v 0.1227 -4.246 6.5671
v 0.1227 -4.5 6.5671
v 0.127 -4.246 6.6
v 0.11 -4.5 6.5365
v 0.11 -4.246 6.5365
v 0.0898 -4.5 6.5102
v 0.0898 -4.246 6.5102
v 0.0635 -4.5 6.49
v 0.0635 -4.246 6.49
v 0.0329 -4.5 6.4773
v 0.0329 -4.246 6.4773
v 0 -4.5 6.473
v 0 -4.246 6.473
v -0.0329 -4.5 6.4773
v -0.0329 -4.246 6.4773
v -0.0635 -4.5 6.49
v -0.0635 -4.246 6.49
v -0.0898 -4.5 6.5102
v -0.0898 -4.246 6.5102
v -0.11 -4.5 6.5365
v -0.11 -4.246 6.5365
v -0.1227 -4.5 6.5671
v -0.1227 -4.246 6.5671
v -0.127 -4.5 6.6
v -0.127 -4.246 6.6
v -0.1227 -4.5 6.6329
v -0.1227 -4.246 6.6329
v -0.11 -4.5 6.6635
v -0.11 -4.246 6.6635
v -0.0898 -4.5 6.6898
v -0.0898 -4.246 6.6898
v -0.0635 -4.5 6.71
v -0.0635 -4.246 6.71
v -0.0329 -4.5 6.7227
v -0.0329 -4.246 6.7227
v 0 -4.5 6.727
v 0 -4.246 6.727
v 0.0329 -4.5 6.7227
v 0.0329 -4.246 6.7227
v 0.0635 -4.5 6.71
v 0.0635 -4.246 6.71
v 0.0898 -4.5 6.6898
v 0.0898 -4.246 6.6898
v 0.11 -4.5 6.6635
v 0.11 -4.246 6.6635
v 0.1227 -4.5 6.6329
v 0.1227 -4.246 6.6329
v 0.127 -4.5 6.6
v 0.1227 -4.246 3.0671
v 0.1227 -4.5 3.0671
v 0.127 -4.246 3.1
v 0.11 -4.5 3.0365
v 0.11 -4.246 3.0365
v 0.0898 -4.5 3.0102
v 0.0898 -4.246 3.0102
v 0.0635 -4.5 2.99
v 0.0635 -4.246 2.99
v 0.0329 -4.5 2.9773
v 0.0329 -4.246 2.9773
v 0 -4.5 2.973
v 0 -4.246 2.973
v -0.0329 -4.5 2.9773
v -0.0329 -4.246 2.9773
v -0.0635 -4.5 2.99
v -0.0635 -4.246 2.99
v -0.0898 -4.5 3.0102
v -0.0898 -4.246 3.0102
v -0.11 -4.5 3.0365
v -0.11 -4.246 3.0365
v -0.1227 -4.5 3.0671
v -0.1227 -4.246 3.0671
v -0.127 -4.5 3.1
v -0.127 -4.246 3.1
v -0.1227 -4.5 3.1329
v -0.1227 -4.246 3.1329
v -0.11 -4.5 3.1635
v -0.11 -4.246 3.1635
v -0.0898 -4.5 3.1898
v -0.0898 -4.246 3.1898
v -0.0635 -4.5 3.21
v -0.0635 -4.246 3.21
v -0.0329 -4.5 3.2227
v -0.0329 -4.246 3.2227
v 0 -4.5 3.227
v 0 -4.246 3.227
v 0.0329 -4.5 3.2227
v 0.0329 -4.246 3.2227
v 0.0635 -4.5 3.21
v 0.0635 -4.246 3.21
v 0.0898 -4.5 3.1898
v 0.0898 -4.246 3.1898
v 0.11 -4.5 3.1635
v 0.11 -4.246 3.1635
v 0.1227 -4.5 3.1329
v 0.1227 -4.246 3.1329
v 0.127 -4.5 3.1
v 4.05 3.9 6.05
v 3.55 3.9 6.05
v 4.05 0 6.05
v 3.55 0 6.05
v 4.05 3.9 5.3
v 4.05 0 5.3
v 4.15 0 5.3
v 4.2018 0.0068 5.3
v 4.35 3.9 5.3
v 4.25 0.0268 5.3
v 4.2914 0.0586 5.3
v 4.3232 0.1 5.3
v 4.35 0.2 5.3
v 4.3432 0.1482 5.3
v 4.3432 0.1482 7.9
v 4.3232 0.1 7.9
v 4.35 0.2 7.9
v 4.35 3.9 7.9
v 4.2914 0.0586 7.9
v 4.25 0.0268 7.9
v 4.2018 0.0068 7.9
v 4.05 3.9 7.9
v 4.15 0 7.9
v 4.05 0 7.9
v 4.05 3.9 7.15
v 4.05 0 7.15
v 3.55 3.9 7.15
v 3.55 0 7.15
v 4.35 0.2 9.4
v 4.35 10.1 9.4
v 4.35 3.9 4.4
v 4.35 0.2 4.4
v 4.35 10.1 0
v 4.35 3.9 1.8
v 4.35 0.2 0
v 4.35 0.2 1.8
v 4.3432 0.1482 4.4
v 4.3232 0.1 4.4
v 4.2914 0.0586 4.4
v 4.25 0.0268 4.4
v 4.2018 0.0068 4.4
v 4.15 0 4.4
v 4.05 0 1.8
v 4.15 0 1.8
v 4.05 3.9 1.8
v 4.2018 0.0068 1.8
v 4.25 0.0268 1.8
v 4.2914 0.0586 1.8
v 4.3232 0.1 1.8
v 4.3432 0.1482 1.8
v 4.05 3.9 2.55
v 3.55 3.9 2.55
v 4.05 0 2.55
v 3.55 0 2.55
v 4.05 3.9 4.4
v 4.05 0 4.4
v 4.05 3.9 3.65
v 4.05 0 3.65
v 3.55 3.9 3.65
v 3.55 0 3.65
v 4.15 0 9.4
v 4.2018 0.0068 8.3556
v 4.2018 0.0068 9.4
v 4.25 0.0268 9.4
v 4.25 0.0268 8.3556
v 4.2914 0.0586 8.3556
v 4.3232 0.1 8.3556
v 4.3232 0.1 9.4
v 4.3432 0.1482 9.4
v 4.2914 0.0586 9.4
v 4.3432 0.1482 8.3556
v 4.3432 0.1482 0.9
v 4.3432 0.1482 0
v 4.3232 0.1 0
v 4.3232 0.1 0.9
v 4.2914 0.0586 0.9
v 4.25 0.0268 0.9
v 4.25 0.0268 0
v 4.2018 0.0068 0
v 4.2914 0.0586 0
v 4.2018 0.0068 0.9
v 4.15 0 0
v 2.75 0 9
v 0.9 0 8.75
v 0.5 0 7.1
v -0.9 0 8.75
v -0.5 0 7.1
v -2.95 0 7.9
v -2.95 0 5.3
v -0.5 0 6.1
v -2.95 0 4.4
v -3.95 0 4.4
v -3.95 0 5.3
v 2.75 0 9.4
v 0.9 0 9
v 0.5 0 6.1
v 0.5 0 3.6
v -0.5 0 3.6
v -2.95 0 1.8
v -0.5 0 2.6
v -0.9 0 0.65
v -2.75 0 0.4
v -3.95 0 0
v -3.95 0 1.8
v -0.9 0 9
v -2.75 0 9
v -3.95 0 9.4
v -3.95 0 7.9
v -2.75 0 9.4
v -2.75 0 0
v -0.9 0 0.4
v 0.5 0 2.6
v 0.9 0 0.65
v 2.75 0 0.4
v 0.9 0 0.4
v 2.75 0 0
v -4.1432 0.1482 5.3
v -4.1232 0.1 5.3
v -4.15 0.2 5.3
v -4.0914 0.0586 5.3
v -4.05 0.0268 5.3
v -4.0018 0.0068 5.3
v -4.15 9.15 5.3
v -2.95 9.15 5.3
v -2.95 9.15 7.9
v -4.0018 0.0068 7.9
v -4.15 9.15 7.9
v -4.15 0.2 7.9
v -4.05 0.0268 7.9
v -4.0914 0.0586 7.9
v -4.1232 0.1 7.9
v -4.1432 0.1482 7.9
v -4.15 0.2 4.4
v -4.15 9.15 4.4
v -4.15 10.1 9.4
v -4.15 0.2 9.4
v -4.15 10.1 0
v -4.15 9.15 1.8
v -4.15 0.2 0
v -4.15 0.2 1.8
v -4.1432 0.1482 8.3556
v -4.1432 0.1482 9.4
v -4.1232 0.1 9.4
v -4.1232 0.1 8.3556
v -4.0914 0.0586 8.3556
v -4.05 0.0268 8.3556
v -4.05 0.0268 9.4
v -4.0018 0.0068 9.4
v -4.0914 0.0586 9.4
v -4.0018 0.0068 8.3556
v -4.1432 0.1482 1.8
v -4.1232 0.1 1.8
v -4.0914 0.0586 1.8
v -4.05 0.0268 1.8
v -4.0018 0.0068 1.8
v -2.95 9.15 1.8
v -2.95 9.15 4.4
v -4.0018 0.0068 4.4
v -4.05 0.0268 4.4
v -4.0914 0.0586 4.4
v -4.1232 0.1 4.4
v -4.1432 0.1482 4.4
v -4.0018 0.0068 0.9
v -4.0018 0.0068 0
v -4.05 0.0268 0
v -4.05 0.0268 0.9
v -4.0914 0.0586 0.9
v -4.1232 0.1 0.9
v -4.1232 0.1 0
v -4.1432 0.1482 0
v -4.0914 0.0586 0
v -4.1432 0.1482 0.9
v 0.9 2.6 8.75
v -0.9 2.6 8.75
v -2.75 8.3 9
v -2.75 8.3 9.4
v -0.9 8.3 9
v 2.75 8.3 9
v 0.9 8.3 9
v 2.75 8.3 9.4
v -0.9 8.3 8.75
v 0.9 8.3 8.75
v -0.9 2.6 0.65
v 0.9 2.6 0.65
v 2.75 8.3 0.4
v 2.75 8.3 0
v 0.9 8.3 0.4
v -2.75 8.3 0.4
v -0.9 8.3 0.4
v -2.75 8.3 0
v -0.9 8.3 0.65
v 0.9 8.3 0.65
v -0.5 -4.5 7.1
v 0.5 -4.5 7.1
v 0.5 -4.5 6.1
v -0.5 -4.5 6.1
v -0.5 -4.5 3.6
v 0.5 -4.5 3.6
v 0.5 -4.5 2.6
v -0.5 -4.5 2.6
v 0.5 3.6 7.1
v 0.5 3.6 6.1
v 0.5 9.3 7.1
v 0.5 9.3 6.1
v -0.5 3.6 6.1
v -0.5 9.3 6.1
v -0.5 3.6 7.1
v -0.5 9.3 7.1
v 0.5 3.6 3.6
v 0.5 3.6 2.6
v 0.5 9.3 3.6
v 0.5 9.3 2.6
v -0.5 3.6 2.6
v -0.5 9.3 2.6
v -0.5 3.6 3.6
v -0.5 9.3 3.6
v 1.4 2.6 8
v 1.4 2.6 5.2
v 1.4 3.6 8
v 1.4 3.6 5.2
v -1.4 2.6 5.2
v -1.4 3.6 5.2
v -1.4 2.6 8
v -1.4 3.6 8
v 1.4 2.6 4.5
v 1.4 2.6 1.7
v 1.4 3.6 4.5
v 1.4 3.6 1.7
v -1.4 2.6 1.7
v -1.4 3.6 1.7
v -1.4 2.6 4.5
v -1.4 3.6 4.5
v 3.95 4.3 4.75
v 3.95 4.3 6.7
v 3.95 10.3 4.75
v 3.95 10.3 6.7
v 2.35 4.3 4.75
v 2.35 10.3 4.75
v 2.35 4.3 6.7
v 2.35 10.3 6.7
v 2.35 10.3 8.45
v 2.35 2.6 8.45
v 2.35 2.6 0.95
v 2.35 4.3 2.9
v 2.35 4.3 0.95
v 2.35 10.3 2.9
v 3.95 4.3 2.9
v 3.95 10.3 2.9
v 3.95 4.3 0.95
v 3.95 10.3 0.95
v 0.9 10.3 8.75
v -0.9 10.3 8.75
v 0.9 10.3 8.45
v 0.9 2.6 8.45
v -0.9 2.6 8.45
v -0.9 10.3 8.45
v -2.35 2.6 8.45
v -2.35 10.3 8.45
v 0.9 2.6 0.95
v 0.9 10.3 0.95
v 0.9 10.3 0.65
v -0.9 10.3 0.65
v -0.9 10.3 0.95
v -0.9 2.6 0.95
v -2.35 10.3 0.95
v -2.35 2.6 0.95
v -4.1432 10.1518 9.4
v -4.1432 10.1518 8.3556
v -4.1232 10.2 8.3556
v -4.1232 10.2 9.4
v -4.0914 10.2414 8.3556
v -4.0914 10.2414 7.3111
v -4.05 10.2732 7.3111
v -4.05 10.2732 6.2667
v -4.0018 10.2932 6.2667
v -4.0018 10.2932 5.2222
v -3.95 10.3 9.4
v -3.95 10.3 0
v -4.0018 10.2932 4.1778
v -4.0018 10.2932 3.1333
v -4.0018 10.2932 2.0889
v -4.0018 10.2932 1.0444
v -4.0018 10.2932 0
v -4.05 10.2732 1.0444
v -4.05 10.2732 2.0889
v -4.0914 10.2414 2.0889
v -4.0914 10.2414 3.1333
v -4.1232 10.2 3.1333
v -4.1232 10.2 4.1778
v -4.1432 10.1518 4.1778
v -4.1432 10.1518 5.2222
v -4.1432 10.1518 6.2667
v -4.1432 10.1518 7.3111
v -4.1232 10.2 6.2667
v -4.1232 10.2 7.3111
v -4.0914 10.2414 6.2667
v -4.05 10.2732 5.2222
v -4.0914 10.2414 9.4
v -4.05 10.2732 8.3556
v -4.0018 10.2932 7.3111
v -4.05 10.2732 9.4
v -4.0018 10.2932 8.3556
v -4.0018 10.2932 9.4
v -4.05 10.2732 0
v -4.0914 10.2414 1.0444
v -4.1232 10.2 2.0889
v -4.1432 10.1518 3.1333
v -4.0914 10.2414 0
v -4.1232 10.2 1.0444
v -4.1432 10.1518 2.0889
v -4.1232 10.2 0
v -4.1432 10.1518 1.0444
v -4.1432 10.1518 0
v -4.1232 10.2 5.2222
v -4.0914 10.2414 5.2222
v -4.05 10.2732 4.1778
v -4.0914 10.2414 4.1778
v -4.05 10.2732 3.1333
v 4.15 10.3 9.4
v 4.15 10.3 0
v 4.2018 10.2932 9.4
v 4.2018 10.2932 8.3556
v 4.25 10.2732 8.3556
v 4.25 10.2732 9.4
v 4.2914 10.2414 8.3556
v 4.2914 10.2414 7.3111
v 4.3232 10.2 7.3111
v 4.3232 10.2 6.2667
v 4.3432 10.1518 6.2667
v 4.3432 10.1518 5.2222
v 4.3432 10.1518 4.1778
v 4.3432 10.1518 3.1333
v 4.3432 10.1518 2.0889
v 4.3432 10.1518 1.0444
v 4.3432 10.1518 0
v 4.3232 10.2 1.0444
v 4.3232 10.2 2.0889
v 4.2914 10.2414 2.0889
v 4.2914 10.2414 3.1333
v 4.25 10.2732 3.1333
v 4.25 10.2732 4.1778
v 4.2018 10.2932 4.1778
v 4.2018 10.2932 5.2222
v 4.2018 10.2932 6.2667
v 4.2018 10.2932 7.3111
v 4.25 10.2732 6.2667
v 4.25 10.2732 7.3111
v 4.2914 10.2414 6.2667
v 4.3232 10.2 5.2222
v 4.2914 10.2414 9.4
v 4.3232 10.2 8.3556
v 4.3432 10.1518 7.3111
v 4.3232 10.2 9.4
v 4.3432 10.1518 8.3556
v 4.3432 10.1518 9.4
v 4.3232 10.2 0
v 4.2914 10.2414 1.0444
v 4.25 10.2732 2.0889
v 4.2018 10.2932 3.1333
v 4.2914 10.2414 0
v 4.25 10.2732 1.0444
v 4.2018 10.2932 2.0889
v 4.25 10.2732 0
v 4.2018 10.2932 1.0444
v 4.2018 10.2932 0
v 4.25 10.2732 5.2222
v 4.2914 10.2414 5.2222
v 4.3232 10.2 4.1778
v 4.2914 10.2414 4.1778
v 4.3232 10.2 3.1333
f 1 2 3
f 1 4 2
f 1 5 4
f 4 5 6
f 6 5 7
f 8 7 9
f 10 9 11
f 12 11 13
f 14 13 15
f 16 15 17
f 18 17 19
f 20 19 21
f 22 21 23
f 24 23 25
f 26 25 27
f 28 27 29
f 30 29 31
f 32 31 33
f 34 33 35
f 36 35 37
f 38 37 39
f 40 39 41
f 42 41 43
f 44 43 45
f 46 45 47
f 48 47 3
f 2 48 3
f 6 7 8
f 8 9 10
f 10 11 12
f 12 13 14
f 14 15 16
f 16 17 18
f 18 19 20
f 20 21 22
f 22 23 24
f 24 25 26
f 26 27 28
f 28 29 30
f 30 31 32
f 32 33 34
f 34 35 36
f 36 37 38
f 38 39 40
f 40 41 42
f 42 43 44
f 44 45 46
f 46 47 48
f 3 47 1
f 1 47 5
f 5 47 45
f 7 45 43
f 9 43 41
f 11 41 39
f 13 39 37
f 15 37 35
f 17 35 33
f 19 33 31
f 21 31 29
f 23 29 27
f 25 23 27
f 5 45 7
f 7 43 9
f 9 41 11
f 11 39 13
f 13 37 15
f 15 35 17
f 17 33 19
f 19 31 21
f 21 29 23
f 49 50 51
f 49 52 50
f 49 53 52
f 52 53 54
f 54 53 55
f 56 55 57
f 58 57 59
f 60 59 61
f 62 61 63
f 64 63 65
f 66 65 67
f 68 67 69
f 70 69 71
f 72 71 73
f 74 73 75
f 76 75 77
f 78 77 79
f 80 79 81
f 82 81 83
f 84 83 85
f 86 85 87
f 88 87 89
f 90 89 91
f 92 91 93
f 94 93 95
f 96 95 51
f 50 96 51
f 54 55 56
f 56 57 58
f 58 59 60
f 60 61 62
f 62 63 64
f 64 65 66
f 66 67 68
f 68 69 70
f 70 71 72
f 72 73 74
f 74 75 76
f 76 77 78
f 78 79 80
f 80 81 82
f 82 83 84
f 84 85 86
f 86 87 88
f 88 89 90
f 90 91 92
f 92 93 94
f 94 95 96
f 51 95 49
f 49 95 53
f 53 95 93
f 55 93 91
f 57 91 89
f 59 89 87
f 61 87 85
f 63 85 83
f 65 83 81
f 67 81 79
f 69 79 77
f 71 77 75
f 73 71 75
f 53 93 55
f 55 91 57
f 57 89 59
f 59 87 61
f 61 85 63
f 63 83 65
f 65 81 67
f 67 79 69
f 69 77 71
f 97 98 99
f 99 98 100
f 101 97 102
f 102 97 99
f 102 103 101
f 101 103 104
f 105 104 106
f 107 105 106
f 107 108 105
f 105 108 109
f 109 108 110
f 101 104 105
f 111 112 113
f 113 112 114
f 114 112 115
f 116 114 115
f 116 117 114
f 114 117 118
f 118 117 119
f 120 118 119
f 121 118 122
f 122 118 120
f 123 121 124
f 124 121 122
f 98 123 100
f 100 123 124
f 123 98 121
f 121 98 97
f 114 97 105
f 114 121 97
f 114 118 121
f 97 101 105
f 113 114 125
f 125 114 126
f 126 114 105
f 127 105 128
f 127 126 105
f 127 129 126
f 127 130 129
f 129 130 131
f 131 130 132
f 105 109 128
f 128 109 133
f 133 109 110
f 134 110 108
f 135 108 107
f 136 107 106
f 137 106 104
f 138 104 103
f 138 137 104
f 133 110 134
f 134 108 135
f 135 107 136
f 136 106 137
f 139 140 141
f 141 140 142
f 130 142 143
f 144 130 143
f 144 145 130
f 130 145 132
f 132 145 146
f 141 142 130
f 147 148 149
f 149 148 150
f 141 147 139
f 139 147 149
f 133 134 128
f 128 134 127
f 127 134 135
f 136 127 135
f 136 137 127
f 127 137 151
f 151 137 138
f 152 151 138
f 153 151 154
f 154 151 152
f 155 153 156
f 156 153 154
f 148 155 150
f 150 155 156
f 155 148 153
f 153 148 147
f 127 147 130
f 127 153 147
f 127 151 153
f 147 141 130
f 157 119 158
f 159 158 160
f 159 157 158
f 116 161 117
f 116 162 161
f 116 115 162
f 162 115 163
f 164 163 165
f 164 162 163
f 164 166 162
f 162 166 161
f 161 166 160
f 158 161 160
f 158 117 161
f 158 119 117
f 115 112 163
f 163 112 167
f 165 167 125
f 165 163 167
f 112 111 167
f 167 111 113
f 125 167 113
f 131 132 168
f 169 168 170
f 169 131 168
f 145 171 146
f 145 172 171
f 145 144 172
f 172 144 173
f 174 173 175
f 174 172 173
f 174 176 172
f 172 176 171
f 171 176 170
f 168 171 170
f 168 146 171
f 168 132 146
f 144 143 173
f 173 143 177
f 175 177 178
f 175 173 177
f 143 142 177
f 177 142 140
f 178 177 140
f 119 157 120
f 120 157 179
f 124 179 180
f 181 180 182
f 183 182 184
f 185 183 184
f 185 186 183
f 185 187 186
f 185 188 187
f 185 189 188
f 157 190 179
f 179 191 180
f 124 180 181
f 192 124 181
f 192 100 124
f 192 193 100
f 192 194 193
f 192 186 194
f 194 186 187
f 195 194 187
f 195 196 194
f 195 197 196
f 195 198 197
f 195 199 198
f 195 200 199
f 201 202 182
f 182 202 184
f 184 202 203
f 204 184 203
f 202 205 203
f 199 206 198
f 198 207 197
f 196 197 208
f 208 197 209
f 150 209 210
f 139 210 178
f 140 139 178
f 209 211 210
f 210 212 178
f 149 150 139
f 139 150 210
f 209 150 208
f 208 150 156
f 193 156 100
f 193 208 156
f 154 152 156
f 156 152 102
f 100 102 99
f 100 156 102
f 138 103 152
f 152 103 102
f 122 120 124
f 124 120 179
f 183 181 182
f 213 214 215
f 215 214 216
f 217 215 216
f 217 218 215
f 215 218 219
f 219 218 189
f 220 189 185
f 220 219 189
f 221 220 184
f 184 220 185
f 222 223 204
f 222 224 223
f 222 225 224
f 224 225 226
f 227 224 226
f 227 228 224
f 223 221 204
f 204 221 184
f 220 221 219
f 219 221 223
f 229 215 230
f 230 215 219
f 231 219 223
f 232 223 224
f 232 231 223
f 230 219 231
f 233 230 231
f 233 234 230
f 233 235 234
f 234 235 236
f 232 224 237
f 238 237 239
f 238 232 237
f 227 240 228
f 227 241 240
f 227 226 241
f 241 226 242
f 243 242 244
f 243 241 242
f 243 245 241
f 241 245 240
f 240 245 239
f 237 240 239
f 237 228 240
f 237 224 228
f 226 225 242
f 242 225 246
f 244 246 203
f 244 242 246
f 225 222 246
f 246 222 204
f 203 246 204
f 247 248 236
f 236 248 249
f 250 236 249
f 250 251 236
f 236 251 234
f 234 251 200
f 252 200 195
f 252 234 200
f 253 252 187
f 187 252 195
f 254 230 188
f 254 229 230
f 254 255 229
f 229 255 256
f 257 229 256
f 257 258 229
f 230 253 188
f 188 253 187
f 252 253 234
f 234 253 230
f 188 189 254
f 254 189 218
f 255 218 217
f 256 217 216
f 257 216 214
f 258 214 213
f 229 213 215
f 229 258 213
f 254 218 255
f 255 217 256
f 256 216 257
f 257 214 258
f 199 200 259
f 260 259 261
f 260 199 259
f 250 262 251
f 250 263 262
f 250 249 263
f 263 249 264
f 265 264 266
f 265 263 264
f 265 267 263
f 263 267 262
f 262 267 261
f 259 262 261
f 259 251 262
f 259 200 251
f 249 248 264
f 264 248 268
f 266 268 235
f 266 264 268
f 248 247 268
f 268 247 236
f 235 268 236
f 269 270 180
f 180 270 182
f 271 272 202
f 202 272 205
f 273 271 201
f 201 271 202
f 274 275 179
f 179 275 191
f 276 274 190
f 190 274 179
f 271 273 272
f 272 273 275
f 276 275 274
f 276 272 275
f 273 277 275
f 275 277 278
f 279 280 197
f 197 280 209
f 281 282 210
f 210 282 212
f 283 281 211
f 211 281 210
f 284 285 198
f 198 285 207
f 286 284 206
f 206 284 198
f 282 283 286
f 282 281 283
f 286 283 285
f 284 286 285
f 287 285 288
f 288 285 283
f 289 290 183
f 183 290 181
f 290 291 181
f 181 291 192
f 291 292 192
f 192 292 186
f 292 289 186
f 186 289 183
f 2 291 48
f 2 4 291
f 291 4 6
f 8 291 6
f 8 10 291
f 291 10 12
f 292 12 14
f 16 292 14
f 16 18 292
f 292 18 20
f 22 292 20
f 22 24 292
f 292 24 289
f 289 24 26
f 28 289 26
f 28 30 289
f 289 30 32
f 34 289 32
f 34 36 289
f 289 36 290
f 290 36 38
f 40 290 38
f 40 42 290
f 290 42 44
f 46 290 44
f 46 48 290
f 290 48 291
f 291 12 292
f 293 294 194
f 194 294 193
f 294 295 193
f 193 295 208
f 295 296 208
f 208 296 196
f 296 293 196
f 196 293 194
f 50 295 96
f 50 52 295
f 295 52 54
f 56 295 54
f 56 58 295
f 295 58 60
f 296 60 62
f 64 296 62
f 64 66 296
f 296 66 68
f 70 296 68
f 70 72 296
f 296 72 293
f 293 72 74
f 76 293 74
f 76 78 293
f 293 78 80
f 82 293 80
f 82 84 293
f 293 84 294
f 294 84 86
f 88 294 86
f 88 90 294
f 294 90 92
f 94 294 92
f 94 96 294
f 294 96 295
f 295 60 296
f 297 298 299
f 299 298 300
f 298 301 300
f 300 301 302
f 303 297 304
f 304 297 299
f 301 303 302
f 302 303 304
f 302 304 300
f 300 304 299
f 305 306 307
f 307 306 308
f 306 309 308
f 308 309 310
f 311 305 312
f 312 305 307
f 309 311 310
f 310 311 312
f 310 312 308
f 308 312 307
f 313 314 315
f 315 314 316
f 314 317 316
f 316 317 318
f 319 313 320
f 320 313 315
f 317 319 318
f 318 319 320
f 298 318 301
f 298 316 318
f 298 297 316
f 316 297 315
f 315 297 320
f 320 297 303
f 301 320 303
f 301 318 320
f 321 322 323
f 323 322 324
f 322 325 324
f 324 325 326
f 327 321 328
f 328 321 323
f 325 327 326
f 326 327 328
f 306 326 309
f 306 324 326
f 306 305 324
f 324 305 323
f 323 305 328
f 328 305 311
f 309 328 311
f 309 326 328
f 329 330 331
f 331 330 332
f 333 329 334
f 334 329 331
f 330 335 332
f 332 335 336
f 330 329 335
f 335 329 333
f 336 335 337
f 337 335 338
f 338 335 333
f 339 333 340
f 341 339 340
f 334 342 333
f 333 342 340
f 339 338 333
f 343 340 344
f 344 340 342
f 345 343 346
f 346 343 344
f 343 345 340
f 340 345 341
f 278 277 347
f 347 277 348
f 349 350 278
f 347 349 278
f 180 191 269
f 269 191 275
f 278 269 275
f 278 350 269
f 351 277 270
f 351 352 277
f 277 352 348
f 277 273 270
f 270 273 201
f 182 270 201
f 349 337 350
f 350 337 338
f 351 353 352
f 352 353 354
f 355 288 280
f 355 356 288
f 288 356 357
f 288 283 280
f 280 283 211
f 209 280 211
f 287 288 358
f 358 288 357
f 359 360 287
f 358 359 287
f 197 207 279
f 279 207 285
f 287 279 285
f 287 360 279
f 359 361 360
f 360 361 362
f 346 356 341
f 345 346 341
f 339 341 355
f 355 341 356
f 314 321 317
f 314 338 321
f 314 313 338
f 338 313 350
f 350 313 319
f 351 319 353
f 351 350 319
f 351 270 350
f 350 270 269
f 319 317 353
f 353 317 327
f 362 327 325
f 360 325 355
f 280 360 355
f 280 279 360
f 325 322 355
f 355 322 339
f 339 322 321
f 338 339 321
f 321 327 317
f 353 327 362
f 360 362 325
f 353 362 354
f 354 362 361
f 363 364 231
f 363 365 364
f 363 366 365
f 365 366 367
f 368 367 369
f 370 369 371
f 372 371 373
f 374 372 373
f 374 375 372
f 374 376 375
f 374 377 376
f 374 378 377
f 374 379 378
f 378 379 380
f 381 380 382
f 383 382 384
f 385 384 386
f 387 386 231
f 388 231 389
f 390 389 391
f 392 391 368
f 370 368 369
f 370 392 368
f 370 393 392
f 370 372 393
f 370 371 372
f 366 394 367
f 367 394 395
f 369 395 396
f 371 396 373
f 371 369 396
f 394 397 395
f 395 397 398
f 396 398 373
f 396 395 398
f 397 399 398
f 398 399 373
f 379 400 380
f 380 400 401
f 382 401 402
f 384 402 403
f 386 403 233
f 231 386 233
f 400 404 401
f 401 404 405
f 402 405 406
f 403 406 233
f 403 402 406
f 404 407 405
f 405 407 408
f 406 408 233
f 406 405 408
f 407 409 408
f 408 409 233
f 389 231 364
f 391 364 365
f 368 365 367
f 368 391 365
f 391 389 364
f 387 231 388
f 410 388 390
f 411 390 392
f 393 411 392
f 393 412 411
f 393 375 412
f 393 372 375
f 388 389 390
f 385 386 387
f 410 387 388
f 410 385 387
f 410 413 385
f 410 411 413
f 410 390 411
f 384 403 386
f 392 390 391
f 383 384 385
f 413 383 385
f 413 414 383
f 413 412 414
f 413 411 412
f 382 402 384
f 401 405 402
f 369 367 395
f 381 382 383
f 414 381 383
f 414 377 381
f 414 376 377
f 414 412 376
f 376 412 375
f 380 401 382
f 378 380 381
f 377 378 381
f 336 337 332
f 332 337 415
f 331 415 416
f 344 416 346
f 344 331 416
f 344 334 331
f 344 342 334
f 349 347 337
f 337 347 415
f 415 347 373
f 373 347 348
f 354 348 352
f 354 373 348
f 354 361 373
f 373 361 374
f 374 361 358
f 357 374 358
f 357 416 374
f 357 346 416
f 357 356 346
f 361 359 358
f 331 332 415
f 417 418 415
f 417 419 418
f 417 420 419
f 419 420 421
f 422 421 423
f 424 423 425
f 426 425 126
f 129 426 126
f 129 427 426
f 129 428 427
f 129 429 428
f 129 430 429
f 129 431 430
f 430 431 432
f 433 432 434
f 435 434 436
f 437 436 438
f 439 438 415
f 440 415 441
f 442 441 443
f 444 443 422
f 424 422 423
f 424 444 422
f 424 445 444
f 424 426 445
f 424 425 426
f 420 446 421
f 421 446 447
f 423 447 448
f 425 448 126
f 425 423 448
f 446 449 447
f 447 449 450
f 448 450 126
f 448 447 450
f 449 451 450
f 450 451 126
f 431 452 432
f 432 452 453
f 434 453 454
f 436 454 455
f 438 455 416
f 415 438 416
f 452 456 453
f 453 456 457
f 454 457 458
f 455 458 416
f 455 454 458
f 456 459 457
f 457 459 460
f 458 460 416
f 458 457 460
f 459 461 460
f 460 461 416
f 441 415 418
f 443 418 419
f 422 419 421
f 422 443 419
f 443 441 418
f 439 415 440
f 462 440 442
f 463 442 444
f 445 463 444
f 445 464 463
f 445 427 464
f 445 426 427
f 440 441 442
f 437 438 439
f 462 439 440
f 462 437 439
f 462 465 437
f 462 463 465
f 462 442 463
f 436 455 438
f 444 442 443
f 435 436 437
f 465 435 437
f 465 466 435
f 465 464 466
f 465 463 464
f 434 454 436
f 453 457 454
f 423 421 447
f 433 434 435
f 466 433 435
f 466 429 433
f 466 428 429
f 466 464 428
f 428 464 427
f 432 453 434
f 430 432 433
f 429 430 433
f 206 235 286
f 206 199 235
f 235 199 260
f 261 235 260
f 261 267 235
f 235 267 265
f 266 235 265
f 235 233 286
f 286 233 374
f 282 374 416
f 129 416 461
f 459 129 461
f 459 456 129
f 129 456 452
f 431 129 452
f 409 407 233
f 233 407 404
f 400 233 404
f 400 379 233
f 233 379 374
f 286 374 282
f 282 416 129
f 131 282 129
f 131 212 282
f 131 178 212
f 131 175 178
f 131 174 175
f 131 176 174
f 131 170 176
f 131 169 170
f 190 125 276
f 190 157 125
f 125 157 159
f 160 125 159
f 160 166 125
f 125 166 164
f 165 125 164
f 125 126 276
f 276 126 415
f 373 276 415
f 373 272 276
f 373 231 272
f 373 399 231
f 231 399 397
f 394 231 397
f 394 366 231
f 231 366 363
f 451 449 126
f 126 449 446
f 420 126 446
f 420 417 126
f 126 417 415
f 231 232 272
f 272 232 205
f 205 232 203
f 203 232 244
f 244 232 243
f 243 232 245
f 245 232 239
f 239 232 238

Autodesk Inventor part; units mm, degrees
ref_plane "YZ Plane" through (0, 0, 0) normal (1, 0, 0) x (0, 1, 0)
ref_plane "XZ Plane" through (0, 0, 0) normal (0, 1, 0) x (-1, 0, 0)
ref_plane "XY Plane" through (0, 0, 0) normal (0, 0, 1) x (1, 0, 0)
sketch "Skizze_1" plane through (0, 0, 0) normal (0, 0, 1) x (1, 0, 0)
  arc A0 (-4.15, 0.2) -> (-3.95, 0) centre (-3.95, 0.2) ccw
  line L0 (-3.95, 0) -> (4.15, 0)
  arc A1 (4.15, 0) -> (4.35, 0.2) centre (4.15, 0.2) ccw
  line L1 (4.35, 0.2) -> (4.35, 10.1)
  arc A2 (4.35, 10.1) -> (4.15, 10.3) centre (4.15, 10.1) ccw
  line L2 (4.15, 10.3) -> (-3.95, 10.3)
  arc A3 (-3.95, 10.3) -> (-4.15, 10.1) centre (-3.95, 10.1) ccw
  line L3 (-4.15, 10.1) -> (-4.15, 0.2)
extrude "Extrusion1" add sketch "Skizze_1" along normal blind 9.4
sketch "Skizze_2" plane through (0, 0, 0.95) normal (0, 0, 1) x (1, 0, 0)
  line L0 (-2.35, 10.3) -> (-2.35, 2.6)
  line L1 (-2.35, 2.6) -> (2.35, 2.6)
  line L2 (2.35, 2.6) -> (2.35, 10.3)
  line L3 (2.35, 10.3) -> (-2.35, 10.3)
extrude "Extrusion2" cut sketch "Skizze_2" along normal blind 7.5
sketch "Skizze_3" plane through (0, 10.3, 0) normal (0, 1, 0) x (1, 0, 0)
  line L0 (-0.9, -0.95) -> (0.9, -0.95)
  line L1 (0.9, -0.95) -> (0.9, -0.65)
  line L2 (0.9, -0.65) -> (-0.9, -0.65)
  line L3 (-0.9, -0.65) -> (-0.9, -0.95)
extrude "Extrusion3" cut sketch "Skizze_3" against normal blind 7.7
sketch "Skizze_4" plane through (0, 10.3, 0) normal (0, 1, 0) x (1, 0, 0)
  line L0 (-0.9, -8.45) -> (-0.9, -8.75)
  line L1 (-0.9, -8.75) -> (0.9, -8.75)
  line L2 (0.9, -8.75) -> (0.9, -8.45)
  line L3 (0.9, -8.45) -> (-0.9, -8.45)
extrude "Extrusion4" cut sketch "Skizze_4" against normal blind 7.7
sketch "Skizze_5" plane through (0, 10.3, 0) normal (0, 1, 0) x (1, 0, 0)
  line L0 (2.35, -0.95) -> (2.35, -2.9)
  line L1 (2.35, -2.9) -> (3.95, -2.9)
  line L2 (3.95, -2.9) -> (3.95, -0.95)
  line L3 (3.95, -0.95) -> (2.35, -0.95)
extrude "Extrusion5" cut sketch "Skizze_5" against normal blind 6
sketch "Skizze_6" plane through (0, 10.3, 0) normal (0, 1, 0) x (1, 0, 0)
  line L0 (2.35, -6.7) -> (3.95, -6.7)
  line L1 (3.95, -6.7) -> (3.95, -4.75)
  line L2 (3.95, -4.75) -> (2.35, -4.75)
  line L3 (2.35, -4.75) -> (2.35, -6.7)
extrude "Extrusion6" cut sketch "Skizze_6" against normal blind 6
sketch "Skizze_7" plane through (0, 0, 0) normal (0, 1, 0) x (-1, 0, 0)
  line L0 (1.4, 1.7) -> (1.4, 4.5)
  line L1 (1.4, 4.5) -> (-1.4, 4.5)
  line L2 (-1.4, 4.5) -> (-1.4, 1.7)
  line L3 (-1.4, 1.7) -> (1.4, 1.7)
extrude "Extrusion7" add sketch "Skizze_7" along normal blind 3.6
pattern_linear "Rectangular Pattern1" count 2 spacing 3.5 along (0, 0, 1) of "Extrusion7"
sketch "Skizze_9" plane through (0, 0, 0) normal (0, 1, 0) x (-1, 0, 0)
  line L0 (0.5, 2.6) -> (0.5, 3.6)
  line L1 (0.5, 3.6) -> (-0.5, 3.6)
  line L2 (-0.5, 3.6) -> (-0.5, 2.6)
  line L3 (-0.5, 2.6) -> (0.5, 2.6)
extrude "Extrusion8" add sketch "Skizze_9" along normal blind 9.3
pattern_linear "Rectangular Pattern2" count 2 spacing 3.5 along (0, 0, 1) of "Extrusion8"
sketch "Skizze_11" plane through (0, 0, 0) normal (0, 1, 0) x (-1, 0, 0)
  line L0 (0.5, 2.6) -> (0.5, 3.6)
  line L1 (0.5, 3.6) -> (-0.5, 3.6)
  line L2 (-0.5, 3.6) -> (-0.5, 2.6)
  line L3 (-0.5, 2.6) -> (0.5, 2.6)
extrude "Extrusion9" add sketch "Skizze_11" against normal blind 4.5
pattern_linear "Rectangular Pattern3" count 2 spacing 3.5 along (0, 0, 1) of "Extrusion9"
sketch "Skizze_13" plane through (0, 0, 0) normal (0, 1, 0) x (-1, 0, 0)
  line L0 (2.75, 0) -> (2.75, 0.4)
  line L1 (2.75, 0.4) -> (0.9, 0.4)
  line L2 (0.9, 0.4) -> (0.9, 0.65)
  line L3 (0.9, 0.65) -> (-0.9, 0.65)
  line L4 (-0.9, 0.65) -> (-0.9, 0.4)
  line L5 (-0.9, 0.4) -> (-2.75, 0.4)
  line L6 (-2.75, 0.4) -> (-2.75, 0)
  line L7 (-2.75, 0) -> (2.75, 0)
extrude "Extrusion10" cut sketch "Skizze_13" along normal blind 8.3
sketch "Skizze_14" plane through (0, 0, 0) normal (0, 1, 0) x (-1, 0, 0)
  line L0 (2.75, 9.4) -> (-2.75, 9.4)
  line L1 (-2.75, 9.4) -> (-2.75, 9)
  line L2 (-2.75, 9) -> (-0.9, 9)
  line L3 (-0.9, 9) -> (-0.9, 8.75)
  line L4 (-0.9, 8.75) -> (0.9, 8.75)
  line L5 (0.9, 8.75) -> (0.9, 9)
  line L6 (0.9, 9) -> (2.75, 9)
  line L7 (2.75, 9) -> (2.75, 9.4)
extrude "Extrusion11" cut sketch "Skizze_14" along normal blind 8.3
sketch "Skizze_15" plane through (0, 0, 0) normal (0, 1, 0) x (-1, 0, 0)
  line L0 (4.15, 1.8) -> (4.15, 4.4)
  line L1 (4.15, 4.4) -> (2.95, 4.4)
  line L2 (2.95, 4.4) -> (2.95, 1.8)
  line L3 (2.95, 1.8) -> (4.15, 1.8)
extrude "Extrusion12" cut sketch "Skizze_15" along normal blind 9.15
pattern_linear "Rectangular Pattern4" count 2 spacing 3.5 along (0, 0, 1) of "Extrusion12"
sketch "Skizze_17" plane through (0, 0, 0) normal (0, 1, 0) x (-1, 0, 0)
  line L0 (-3.55, 2.55) -> (-3.55, 3.65)
  line L1 (-3.55, 3.65) -> (-4.05, 3.65)
  line L2 (-4.05, 3.65) -> (-4.05, 4.4)
  line L3 (-4.05, 4.4) -> (-4.35, 4.4)
  line L4 (-4.35, 4.4) -> (-4.35, 1.8)
  line L5 (-4.35, 1.8) -> (-4.05, 1.8)
  line L6 (-4.05, 1.8) -> (-4.05, 2.55)
  line L7 (-4.05, 2.55) -> (-3.55, 2.55)
extrude "Extrusion13" cut sketch "Skizze_17" along normal blind 3.9
sketch "Skizze_18" plane through (0, 0, 0) normal (0, 1, 0) x (-1, 0, 0)
  line L0 (-3.55, 6.05) -> (-3.55, 7.15)
  line L1 (-3.55, 7.15) -> (-4.05, 7.15)
  line L2 (-4.05, 7.15) -> (-4.05, 7.9)
  line L3 (-4.05, 7.9) -> (-4.35, 7.9)
  line L4 (-4.35, 7.9) -> (-4.35, 5.3)
  line L5 (-4.35, 5.3) -> (-4.05, 5.3)
  line L6 (-4.05, 5.3) -> (-4.05, 6.05)
  line L7 (-4.05, 6.05) -> (-3.55, 6.05)
extrude "Extrusion14" cut sketch "Skizze_18" along normal blind 3.9
sketch "Sketch15" plane through (-0.5, -4.5, 7.1) normal (0, -1, 0) x (1, 0, 0)
  line L0 (1, -1) -> (0, -1) projected
  line L1 (0, 0) -> (1, 0) projected
  line L2 (0, -3.5) -> (1, -3.5) projected
  line L3 (1, -4.5) -> (0, -4.5) projected
  line L4 (0, -1) -> (1, 0)
  line L5 (0, -4.5) -> (1, -3.5)
  circle A0 centre (0.5, -4) radius 0.127
  circle A1 centre (0.5, -0.5) radius 0.127
  point P0 (0.5, -7.1)
  dimension "d52" = 0.254
extrude "Extrusion15" cut sketch "Sketch15" against normal blind 0.254
properties part number "734-132"
